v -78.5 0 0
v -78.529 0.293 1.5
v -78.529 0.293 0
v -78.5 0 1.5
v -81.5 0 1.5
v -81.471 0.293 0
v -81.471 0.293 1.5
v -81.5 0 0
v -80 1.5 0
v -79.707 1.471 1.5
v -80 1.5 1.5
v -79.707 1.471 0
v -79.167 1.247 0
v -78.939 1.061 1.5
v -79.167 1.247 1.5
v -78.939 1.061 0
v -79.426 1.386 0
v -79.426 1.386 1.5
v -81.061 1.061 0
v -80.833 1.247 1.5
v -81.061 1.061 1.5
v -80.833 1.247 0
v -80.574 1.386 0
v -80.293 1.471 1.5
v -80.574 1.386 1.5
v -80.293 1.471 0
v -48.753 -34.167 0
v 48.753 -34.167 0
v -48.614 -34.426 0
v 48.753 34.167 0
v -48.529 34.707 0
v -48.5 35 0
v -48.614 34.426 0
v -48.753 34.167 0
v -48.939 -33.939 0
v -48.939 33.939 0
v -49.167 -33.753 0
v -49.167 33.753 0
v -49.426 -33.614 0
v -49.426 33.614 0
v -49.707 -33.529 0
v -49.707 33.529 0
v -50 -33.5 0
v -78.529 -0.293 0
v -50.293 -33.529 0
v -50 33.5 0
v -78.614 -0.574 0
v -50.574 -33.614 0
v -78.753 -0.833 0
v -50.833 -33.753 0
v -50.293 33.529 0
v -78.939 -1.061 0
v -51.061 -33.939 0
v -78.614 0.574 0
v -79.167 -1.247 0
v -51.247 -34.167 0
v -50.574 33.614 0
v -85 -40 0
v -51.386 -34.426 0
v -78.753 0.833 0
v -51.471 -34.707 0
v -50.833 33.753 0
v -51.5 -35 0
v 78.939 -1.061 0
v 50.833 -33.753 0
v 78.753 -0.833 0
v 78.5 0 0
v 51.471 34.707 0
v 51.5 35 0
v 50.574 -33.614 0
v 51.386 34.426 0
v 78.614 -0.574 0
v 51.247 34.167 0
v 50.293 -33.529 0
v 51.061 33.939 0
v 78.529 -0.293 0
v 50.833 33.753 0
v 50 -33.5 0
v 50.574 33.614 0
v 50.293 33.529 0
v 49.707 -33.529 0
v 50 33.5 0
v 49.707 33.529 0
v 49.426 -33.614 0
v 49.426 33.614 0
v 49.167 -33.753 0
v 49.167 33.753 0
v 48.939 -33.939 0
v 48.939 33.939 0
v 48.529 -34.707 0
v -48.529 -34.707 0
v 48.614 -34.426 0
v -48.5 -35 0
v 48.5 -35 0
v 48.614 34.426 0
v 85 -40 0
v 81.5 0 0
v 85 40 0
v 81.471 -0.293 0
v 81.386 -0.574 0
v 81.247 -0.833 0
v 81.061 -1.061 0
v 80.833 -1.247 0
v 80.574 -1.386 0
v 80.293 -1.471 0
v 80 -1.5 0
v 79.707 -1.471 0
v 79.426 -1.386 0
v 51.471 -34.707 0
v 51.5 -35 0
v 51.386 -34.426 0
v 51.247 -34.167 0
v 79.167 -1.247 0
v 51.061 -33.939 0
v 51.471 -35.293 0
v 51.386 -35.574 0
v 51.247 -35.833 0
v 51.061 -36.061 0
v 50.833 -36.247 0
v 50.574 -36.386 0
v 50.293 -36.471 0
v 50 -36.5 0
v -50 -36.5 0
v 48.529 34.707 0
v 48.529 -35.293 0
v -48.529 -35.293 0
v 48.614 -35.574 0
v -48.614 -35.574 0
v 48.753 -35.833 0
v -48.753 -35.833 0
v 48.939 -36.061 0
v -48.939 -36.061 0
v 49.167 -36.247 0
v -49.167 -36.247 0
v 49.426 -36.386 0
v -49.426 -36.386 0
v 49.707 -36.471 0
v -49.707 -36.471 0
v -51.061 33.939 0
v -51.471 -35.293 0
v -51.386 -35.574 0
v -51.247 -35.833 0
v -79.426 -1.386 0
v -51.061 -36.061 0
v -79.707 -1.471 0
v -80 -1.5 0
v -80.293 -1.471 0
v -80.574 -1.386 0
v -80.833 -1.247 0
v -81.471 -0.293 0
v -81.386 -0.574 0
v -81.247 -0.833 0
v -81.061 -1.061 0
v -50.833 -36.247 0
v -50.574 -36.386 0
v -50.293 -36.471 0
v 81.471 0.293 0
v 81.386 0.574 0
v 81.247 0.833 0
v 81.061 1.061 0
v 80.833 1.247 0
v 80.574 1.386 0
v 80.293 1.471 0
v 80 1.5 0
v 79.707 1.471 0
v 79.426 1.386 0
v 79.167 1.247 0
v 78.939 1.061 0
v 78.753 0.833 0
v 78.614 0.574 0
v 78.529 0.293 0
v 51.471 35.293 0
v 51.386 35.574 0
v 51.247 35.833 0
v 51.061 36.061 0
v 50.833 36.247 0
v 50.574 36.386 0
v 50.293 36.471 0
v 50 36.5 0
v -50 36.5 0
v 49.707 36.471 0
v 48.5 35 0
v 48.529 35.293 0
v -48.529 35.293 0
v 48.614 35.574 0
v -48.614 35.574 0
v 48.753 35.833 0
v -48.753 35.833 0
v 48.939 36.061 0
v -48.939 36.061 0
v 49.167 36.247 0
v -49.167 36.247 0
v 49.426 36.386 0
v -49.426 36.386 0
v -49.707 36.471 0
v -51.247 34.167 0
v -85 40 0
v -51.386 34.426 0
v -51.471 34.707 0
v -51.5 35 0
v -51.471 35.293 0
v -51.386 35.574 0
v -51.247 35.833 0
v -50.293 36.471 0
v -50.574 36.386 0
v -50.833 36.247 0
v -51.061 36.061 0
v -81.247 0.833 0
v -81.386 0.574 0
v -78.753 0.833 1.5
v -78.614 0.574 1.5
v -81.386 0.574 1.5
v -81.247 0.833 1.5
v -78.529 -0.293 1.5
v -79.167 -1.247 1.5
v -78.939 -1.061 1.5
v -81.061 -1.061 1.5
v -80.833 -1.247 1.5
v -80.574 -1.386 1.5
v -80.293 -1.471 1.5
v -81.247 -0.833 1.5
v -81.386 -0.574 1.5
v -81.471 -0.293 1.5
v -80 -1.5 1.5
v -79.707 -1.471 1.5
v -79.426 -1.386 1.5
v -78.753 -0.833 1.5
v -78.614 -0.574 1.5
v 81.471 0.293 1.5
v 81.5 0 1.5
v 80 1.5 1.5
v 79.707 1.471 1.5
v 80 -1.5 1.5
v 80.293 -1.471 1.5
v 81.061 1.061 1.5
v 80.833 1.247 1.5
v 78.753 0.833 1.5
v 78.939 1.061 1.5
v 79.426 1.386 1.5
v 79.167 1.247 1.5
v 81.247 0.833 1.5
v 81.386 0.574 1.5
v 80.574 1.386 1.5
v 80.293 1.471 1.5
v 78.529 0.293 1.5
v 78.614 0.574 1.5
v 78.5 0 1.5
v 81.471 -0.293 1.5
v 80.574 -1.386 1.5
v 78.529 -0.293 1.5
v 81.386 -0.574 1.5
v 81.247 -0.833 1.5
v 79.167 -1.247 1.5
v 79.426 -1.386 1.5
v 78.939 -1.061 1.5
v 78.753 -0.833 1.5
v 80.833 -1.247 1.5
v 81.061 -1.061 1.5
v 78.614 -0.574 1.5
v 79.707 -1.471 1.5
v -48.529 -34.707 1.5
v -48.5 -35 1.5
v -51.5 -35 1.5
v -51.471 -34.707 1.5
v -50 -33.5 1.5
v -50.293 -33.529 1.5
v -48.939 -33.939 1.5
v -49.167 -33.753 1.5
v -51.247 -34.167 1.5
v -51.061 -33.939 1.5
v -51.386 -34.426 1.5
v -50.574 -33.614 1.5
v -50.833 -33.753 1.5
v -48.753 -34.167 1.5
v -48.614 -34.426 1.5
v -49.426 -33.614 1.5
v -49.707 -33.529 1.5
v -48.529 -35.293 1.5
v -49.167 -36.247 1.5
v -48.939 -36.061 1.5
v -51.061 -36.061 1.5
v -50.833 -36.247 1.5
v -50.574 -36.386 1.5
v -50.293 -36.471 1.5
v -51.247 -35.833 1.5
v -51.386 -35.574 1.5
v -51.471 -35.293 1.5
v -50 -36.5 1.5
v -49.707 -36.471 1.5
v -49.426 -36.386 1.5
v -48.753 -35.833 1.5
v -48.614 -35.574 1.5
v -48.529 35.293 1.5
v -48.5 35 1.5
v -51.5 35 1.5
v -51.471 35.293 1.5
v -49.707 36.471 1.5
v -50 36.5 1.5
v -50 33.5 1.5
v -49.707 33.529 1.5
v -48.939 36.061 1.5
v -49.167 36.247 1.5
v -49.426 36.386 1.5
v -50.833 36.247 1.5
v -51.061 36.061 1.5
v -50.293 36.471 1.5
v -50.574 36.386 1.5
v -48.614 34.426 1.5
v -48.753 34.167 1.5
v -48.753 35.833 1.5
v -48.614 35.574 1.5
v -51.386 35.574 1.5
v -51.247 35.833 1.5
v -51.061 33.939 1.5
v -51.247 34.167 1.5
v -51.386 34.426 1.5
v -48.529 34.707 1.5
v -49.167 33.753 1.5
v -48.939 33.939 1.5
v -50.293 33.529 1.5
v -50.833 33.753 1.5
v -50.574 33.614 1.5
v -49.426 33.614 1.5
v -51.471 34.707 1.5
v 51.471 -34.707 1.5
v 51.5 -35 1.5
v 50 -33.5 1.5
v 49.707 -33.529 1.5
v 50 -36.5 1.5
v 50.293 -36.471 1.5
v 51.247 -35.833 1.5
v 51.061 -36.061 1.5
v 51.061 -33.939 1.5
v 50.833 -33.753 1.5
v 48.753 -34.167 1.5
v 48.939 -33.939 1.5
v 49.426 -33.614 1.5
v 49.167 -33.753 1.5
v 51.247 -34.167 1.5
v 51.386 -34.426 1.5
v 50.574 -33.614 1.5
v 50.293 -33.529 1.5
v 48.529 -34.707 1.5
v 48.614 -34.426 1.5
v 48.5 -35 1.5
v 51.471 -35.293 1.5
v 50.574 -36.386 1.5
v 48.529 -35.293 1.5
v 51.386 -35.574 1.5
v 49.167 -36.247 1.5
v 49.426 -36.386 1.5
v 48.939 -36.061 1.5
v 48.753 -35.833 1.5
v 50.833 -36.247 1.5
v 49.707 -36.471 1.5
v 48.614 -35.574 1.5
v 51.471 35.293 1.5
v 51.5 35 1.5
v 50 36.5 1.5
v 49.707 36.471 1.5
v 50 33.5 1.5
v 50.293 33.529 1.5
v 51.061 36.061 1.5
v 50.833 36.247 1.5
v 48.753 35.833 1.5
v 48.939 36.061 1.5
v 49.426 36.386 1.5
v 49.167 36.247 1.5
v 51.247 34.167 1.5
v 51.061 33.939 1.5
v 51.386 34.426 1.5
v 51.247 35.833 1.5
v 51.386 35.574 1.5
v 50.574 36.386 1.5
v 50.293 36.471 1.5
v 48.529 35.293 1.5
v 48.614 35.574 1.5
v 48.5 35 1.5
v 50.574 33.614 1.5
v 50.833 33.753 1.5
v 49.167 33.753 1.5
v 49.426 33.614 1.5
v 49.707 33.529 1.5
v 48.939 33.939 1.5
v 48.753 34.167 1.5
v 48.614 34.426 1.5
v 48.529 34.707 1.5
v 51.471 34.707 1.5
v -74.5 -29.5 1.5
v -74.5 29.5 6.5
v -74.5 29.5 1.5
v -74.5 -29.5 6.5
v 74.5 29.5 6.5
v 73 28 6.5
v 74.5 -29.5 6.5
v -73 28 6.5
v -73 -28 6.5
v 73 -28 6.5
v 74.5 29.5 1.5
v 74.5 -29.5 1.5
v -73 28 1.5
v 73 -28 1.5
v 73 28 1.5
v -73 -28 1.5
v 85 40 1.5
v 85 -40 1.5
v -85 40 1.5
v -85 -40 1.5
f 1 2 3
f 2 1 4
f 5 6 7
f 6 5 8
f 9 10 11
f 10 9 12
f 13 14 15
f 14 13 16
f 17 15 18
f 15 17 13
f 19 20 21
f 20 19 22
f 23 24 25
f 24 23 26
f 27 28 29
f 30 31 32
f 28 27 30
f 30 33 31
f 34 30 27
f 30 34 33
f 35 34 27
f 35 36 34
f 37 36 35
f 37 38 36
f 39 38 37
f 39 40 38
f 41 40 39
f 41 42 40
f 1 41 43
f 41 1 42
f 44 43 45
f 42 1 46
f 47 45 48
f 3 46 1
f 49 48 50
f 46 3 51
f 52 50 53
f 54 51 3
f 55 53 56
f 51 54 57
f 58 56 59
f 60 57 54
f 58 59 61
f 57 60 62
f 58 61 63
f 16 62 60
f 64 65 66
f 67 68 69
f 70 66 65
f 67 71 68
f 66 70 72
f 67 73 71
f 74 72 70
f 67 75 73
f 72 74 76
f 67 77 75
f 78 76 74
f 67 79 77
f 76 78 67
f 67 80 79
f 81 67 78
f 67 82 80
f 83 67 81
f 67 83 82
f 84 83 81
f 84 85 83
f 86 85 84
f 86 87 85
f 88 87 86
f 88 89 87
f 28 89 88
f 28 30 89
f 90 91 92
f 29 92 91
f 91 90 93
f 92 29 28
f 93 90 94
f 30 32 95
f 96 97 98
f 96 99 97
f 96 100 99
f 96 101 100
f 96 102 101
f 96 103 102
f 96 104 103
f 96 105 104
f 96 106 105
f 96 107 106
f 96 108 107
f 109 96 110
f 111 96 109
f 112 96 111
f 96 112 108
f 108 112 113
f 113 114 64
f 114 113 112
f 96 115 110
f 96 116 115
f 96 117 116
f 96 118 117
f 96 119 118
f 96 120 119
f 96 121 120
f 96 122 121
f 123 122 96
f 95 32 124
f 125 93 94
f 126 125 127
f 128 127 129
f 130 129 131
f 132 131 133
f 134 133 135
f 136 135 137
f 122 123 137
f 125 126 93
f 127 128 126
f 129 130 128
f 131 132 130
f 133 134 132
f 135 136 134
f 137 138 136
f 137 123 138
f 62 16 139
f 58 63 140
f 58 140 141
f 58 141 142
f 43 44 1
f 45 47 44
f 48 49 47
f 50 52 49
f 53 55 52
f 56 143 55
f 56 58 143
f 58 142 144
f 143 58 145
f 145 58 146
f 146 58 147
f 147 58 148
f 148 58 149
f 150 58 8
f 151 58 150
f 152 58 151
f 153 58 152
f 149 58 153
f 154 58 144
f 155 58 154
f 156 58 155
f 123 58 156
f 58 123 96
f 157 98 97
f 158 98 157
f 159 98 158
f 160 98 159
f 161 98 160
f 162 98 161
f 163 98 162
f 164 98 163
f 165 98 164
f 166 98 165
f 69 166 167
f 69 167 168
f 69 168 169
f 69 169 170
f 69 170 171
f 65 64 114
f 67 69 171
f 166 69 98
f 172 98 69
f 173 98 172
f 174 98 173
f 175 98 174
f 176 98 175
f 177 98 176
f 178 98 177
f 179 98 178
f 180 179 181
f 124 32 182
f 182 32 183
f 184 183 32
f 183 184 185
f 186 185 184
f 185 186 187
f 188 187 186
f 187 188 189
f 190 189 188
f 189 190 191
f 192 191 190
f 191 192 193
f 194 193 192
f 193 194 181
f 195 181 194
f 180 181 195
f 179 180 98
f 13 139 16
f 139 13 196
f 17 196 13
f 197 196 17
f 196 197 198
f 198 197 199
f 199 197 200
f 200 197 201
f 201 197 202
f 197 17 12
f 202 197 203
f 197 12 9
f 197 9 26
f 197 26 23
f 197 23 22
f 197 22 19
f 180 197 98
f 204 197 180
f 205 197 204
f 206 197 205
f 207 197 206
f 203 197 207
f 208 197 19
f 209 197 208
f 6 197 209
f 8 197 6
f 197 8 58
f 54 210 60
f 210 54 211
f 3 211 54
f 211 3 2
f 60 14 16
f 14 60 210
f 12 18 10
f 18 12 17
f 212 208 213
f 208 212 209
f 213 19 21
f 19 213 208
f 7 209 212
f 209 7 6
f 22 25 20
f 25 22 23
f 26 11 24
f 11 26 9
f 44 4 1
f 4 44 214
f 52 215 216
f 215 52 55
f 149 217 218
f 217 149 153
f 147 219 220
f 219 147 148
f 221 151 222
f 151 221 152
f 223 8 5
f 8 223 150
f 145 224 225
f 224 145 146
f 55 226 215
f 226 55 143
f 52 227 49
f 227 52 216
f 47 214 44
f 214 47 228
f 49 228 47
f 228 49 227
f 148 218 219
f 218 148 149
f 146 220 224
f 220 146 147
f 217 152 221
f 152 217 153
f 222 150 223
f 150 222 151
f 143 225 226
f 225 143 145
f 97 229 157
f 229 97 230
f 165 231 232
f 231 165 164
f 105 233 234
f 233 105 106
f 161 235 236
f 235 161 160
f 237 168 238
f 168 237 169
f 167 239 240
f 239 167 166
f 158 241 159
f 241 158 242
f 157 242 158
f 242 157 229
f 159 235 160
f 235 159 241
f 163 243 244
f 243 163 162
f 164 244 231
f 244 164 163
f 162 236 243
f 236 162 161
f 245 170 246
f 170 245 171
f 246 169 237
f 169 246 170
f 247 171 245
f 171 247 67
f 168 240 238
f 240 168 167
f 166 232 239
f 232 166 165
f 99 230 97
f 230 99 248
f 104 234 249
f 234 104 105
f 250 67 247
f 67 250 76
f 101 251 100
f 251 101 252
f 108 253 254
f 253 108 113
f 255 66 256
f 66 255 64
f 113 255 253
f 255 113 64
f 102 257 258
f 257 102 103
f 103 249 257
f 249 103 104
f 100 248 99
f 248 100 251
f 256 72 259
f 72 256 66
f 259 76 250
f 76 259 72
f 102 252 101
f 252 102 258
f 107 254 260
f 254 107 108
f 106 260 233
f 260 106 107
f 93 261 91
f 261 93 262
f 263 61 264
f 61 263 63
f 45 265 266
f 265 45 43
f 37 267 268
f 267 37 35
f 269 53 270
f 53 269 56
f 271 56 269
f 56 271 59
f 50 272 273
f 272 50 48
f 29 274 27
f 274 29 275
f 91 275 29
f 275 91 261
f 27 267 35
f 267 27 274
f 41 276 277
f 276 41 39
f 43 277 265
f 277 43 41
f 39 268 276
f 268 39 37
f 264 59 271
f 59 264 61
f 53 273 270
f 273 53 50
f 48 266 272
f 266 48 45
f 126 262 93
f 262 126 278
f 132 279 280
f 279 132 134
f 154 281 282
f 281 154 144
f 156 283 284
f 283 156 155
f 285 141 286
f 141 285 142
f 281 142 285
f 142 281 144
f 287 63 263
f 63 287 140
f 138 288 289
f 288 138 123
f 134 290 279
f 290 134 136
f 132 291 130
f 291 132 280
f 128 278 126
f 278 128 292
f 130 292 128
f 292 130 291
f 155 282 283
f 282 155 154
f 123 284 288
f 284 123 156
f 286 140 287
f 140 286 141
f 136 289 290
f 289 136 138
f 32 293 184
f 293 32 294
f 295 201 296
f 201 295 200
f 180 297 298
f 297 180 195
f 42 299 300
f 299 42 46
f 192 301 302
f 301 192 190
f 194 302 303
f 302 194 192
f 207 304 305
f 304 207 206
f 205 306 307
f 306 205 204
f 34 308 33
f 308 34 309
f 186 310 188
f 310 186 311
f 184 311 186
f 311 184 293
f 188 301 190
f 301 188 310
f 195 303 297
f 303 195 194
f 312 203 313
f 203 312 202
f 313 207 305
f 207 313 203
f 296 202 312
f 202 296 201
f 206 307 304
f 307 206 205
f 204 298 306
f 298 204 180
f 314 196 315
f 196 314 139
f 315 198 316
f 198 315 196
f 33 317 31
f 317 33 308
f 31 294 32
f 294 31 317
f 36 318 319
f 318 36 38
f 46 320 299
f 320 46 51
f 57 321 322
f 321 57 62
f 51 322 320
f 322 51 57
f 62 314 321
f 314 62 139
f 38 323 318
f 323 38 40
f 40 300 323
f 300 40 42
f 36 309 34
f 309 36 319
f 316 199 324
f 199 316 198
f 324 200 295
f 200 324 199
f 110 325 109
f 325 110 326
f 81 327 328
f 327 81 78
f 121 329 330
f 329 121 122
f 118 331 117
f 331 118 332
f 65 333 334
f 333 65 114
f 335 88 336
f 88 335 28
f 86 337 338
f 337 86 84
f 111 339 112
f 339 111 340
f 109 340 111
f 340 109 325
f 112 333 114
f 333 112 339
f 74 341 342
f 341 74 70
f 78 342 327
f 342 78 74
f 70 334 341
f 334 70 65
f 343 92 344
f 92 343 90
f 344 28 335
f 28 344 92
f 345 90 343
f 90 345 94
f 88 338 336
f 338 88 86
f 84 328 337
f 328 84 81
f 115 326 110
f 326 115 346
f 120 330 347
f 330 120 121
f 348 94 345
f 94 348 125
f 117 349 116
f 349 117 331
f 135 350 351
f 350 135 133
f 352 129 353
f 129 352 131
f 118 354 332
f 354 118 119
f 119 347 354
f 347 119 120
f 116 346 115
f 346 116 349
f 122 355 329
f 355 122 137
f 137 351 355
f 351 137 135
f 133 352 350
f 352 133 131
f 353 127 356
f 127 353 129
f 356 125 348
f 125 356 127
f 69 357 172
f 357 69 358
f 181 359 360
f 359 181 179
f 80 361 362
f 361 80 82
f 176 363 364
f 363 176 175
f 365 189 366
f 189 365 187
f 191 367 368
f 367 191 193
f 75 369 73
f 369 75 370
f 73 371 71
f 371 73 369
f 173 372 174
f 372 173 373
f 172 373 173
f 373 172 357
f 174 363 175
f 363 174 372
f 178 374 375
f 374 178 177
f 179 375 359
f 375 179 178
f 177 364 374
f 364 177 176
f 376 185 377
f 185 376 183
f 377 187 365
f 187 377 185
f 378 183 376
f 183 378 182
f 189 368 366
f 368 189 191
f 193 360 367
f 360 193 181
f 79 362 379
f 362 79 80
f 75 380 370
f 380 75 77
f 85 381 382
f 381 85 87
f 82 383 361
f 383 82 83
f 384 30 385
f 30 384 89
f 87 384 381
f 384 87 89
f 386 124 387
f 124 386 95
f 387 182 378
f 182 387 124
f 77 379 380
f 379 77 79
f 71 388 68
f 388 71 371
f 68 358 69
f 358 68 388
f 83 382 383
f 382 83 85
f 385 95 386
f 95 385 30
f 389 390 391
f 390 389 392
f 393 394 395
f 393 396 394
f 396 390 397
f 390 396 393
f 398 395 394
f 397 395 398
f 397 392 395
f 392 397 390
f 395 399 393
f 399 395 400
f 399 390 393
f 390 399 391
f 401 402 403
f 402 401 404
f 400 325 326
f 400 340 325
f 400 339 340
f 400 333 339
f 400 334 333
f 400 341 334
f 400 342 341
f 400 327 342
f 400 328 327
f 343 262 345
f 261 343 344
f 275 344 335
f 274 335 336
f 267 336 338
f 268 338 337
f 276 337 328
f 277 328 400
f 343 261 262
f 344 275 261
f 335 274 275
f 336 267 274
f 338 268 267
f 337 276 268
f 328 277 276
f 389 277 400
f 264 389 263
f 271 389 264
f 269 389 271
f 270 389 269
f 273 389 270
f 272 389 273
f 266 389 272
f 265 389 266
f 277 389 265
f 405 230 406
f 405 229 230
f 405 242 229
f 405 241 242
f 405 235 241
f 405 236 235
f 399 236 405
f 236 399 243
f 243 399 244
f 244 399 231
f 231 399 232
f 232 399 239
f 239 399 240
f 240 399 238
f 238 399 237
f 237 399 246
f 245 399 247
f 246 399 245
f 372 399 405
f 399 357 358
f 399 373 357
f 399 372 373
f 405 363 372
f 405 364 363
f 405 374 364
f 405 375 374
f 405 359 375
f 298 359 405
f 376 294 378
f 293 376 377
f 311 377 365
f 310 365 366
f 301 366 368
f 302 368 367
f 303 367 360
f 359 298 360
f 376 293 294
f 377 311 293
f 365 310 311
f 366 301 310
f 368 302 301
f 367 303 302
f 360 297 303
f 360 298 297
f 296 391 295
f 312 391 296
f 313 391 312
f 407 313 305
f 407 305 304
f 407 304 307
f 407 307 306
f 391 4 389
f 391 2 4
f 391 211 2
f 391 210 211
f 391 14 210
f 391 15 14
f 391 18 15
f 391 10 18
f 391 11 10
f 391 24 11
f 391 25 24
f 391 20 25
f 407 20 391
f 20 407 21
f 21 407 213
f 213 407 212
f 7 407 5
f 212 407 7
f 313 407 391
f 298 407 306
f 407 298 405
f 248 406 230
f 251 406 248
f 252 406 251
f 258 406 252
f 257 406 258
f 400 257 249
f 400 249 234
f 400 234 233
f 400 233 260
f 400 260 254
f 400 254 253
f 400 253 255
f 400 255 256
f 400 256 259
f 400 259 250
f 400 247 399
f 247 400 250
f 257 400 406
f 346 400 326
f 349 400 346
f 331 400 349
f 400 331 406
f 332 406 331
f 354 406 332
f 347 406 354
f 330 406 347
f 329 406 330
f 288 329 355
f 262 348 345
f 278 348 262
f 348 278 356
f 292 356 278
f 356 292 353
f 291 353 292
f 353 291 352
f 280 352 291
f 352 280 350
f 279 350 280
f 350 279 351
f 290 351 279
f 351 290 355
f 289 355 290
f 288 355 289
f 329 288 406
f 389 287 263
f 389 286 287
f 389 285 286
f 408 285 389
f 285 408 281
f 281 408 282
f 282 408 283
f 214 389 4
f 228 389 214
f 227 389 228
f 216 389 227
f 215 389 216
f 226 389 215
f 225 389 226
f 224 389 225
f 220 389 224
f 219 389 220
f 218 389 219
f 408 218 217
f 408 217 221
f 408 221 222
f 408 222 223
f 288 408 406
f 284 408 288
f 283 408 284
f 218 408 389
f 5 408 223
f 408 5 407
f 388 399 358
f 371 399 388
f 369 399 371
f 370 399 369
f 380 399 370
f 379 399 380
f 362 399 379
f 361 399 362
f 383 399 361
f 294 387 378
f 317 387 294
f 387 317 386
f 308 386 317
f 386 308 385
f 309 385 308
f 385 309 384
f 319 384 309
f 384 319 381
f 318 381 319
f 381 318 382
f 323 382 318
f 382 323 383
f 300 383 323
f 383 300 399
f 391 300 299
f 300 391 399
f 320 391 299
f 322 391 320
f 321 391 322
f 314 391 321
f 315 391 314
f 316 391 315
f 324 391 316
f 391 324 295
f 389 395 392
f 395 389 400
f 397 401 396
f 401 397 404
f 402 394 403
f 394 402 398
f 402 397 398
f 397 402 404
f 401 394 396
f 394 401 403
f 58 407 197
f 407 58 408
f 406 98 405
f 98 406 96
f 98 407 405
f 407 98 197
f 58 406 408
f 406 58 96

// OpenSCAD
L=170;
W=80;
T=1.5;

difference() {
    union() {
        cube_center([L,W,T]);
        translate([0,0,T])
        difference() {
            cube_center([L-21,W-21,5]);
            cube_center([L-21-2*T,W-21-2*T,5]);
        }
    }
    
    for(s=[-1,1])
    translate([s*(L/2-5),0,0])
    cylinder(d=3,$fn=32,h=10);
    
    for(s=[-1,1]) for(t=[-1,1])
    translate([s*(L/2-35),t*(W/2-5),0])
    cylinder(d=3,$fn=32,h=10);
}


module cube_center(dims,r=0) {
    if(r==0) {
        translate([-dims[0]/2, -dims[1]/2, 0])
        cube(dims);
    } else {
        
        minkowski() {
            translate([-dims[0]/2+r, -dims[1]/2+r, 0])
            cube([dims[0]-2*r,dims[1]-2*r,dims[2]]);
            cylinder(r=r,h=0.00001,$fn=32);
        }
    }
}
